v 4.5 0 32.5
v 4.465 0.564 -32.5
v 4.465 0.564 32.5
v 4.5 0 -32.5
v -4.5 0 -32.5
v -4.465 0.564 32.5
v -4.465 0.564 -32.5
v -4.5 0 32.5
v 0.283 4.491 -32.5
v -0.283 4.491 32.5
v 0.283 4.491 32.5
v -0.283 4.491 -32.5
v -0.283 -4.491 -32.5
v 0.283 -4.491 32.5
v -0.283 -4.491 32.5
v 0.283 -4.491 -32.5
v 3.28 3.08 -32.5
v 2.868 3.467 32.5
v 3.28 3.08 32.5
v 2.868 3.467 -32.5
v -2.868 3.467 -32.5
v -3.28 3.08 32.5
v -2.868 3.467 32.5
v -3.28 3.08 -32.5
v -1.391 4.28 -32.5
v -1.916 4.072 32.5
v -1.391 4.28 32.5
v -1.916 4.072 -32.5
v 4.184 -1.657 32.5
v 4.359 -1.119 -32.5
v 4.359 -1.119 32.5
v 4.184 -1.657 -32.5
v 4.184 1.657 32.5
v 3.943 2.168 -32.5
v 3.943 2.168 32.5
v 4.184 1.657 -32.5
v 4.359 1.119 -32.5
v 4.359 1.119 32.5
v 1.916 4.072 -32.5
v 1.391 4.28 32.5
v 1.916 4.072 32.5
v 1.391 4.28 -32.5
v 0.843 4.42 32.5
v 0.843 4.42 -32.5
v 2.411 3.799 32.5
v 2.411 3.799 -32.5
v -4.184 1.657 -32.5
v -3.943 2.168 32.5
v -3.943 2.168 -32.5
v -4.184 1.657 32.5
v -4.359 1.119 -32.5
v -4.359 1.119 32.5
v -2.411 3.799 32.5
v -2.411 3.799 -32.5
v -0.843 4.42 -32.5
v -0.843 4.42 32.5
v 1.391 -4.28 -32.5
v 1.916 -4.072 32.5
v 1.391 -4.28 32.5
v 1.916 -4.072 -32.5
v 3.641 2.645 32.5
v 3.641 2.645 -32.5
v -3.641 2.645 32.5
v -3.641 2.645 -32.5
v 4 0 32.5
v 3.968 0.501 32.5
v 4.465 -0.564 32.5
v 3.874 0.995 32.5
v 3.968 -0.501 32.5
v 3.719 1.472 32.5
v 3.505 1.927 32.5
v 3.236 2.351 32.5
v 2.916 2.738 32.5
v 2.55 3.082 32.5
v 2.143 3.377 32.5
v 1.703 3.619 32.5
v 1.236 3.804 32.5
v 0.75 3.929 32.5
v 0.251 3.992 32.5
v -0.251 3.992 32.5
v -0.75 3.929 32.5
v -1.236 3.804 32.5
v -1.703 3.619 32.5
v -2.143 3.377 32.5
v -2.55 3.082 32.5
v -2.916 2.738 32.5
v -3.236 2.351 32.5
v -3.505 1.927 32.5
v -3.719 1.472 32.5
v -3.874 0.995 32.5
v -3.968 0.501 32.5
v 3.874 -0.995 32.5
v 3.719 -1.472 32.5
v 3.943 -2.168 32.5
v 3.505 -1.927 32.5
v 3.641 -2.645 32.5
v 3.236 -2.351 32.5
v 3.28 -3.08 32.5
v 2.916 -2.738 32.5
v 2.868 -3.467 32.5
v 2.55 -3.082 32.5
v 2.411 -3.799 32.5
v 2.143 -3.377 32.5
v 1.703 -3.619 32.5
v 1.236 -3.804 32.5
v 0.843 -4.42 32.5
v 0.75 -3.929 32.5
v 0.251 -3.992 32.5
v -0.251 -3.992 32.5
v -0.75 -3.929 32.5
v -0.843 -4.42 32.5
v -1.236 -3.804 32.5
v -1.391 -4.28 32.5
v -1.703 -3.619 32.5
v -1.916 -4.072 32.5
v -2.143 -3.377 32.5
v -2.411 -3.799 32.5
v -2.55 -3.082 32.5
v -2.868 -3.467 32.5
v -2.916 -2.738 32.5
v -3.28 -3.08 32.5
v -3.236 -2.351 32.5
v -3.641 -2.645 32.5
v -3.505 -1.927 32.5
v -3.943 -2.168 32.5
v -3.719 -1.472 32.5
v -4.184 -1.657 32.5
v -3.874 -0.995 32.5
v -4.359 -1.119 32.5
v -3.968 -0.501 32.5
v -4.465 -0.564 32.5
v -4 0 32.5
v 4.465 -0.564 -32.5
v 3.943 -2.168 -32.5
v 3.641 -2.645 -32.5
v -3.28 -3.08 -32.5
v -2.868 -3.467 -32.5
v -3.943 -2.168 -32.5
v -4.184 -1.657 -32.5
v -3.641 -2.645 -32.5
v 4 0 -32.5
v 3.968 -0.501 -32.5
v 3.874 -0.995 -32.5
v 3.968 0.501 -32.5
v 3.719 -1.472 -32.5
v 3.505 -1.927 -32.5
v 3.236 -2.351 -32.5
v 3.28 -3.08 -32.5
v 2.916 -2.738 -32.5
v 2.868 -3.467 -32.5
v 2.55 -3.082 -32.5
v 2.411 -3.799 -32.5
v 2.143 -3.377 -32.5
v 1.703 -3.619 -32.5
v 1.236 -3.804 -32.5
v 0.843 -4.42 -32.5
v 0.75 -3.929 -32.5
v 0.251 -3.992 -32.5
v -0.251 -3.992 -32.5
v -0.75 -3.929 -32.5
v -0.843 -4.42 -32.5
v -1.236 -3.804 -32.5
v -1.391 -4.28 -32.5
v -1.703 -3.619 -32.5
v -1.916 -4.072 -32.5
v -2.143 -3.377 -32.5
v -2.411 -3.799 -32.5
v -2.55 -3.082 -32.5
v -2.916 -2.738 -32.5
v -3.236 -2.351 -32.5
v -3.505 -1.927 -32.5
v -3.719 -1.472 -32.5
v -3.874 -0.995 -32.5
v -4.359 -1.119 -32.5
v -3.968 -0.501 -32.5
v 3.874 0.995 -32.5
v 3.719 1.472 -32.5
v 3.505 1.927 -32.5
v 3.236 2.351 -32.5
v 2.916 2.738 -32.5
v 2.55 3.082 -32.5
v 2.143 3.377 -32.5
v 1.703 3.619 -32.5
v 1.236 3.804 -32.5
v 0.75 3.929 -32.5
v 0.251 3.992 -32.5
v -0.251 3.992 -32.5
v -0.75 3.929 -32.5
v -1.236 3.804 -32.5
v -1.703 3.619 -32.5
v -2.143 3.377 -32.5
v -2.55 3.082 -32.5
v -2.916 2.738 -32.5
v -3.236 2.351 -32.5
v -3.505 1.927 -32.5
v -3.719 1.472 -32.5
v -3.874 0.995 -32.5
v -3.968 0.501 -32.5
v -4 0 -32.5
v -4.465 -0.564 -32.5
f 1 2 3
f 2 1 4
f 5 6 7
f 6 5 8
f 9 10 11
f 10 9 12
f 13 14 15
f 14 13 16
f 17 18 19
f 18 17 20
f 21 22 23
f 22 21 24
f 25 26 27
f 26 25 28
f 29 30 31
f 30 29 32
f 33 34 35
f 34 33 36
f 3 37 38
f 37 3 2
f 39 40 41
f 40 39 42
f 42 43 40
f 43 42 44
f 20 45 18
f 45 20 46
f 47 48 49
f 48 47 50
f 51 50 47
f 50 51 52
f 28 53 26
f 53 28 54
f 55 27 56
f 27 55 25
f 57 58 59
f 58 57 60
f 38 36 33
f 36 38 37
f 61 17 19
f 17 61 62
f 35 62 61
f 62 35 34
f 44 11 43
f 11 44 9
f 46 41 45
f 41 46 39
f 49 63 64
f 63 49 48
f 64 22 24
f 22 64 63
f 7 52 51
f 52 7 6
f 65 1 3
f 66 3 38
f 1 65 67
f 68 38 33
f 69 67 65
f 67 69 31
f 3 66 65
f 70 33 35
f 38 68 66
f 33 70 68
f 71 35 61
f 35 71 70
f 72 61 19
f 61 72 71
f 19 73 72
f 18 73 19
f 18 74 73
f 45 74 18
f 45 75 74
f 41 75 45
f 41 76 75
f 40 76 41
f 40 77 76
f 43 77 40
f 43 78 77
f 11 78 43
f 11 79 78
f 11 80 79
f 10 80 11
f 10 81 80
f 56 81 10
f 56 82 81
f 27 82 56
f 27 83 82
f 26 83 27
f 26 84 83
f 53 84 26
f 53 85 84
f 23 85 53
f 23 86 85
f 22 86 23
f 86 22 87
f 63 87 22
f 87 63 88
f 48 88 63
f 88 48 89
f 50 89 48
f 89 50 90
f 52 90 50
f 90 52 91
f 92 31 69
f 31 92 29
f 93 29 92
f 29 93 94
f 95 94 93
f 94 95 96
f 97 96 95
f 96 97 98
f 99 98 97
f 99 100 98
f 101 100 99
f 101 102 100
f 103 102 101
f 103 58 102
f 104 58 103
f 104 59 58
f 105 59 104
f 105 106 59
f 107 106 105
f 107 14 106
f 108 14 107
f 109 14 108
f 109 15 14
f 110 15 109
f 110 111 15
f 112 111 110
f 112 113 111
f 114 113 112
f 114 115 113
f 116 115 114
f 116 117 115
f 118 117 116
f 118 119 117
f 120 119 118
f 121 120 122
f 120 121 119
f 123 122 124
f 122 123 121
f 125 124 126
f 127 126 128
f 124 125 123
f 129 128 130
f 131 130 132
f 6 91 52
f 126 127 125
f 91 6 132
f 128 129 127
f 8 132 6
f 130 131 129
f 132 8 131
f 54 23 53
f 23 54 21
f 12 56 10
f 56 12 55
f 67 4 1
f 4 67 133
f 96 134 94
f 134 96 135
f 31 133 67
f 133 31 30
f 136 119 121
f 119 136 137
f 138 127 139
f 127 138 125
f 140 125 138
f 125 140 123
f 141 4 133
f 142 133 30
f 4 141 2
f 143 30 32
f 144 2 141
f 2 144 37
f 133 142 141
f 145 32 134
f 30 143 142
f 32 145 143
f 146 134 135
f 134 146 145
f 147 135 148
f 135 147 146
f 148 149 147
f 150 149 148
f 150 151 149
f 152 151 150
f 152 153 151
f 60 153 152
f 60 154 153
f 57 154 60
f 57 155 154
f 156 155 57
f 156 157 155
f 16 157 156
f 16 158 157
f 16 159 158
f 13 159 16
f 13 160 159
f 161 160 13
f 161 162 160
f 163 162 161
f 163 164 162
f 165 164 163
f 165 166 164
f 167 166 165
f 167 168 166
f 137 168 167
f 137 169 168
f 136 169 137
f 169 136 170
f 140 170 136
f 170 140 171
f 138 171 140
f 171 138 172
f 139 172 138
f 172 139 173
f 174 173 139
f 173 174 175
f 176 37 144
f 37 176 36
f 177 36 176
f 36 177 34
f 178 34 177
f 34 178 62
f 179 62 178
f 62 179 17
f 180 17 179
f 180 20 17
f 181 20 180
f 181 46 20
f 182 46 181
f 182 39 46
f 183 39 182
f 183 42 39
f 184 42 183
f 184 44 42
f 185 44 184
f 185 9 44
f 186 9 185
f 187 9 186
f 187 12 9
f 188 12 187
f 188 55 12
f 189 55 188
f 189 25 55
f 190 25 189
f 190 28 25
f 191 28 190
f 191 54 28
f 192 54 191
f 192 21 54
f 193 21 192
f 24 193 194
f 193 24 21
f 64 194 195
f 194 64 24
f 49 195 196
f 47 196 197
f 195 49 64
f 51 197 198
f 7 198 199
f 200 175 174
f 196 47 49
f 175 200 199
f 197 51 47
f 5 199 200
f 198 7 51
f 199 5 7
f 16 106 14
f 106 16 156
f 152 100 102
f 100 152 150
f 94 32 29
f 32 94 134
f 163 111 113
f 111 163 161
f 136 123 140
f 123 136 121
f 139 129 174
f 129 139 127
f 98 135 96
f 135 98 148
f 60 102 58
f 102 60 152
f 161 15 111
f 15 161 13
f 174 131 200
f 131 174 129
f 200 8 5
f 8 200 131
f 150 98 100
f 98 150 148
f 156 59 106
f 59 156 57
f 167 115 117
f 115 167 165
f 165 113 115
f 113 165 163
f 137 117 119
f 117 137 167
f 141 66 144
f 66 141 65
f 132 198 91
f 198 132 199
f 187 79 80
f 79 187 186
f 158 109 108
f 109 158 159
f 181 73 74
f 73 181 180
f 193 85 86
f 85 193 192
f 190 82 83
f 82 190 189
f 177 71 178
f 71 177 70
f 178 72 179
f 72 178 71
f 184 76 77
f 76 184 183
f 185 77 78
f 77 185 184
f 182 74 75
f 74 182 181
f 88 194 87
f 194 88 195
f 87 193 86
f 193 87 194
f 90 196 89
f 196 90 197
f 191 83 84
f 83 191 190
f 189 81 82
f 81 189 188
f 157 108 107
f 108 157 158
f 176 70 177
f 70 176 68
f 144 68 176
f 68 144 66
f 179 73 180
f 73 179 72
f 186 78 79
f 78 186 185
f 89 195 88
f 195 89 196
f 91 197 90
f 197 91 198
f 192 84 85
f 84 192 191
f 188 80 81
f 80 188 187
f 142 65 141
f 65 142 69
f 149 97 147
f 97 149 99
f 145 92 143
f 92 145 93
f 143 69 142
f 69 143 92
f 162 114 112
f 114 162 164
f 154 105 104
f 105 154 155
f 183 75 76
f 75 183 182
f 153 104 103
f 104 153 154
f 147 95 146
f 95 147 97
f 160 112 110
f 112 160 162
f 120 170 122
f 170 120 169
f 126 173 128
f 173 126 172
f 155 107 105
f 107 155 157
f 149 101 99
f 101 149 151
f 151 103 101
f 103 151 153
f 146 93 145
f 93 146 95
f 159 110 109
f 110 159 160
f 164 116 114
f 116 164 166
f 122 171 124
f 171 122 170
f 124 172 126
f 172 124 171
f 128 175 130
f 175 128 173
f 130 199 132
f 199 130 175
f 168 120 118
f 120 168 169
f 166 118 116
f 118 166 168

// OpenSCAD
$fn = 50;


difference() {
	union() {
		translate(v = [0, 0, -32.5000000000]) {
			cylinder(h = 65, r = 4.5000000000);
		}
	}
	union() {
		translate(v = [0, 0, -100.0000000000]) {
			cylinder(h = 200, r = 4.0000000000);
		}
	}
}
